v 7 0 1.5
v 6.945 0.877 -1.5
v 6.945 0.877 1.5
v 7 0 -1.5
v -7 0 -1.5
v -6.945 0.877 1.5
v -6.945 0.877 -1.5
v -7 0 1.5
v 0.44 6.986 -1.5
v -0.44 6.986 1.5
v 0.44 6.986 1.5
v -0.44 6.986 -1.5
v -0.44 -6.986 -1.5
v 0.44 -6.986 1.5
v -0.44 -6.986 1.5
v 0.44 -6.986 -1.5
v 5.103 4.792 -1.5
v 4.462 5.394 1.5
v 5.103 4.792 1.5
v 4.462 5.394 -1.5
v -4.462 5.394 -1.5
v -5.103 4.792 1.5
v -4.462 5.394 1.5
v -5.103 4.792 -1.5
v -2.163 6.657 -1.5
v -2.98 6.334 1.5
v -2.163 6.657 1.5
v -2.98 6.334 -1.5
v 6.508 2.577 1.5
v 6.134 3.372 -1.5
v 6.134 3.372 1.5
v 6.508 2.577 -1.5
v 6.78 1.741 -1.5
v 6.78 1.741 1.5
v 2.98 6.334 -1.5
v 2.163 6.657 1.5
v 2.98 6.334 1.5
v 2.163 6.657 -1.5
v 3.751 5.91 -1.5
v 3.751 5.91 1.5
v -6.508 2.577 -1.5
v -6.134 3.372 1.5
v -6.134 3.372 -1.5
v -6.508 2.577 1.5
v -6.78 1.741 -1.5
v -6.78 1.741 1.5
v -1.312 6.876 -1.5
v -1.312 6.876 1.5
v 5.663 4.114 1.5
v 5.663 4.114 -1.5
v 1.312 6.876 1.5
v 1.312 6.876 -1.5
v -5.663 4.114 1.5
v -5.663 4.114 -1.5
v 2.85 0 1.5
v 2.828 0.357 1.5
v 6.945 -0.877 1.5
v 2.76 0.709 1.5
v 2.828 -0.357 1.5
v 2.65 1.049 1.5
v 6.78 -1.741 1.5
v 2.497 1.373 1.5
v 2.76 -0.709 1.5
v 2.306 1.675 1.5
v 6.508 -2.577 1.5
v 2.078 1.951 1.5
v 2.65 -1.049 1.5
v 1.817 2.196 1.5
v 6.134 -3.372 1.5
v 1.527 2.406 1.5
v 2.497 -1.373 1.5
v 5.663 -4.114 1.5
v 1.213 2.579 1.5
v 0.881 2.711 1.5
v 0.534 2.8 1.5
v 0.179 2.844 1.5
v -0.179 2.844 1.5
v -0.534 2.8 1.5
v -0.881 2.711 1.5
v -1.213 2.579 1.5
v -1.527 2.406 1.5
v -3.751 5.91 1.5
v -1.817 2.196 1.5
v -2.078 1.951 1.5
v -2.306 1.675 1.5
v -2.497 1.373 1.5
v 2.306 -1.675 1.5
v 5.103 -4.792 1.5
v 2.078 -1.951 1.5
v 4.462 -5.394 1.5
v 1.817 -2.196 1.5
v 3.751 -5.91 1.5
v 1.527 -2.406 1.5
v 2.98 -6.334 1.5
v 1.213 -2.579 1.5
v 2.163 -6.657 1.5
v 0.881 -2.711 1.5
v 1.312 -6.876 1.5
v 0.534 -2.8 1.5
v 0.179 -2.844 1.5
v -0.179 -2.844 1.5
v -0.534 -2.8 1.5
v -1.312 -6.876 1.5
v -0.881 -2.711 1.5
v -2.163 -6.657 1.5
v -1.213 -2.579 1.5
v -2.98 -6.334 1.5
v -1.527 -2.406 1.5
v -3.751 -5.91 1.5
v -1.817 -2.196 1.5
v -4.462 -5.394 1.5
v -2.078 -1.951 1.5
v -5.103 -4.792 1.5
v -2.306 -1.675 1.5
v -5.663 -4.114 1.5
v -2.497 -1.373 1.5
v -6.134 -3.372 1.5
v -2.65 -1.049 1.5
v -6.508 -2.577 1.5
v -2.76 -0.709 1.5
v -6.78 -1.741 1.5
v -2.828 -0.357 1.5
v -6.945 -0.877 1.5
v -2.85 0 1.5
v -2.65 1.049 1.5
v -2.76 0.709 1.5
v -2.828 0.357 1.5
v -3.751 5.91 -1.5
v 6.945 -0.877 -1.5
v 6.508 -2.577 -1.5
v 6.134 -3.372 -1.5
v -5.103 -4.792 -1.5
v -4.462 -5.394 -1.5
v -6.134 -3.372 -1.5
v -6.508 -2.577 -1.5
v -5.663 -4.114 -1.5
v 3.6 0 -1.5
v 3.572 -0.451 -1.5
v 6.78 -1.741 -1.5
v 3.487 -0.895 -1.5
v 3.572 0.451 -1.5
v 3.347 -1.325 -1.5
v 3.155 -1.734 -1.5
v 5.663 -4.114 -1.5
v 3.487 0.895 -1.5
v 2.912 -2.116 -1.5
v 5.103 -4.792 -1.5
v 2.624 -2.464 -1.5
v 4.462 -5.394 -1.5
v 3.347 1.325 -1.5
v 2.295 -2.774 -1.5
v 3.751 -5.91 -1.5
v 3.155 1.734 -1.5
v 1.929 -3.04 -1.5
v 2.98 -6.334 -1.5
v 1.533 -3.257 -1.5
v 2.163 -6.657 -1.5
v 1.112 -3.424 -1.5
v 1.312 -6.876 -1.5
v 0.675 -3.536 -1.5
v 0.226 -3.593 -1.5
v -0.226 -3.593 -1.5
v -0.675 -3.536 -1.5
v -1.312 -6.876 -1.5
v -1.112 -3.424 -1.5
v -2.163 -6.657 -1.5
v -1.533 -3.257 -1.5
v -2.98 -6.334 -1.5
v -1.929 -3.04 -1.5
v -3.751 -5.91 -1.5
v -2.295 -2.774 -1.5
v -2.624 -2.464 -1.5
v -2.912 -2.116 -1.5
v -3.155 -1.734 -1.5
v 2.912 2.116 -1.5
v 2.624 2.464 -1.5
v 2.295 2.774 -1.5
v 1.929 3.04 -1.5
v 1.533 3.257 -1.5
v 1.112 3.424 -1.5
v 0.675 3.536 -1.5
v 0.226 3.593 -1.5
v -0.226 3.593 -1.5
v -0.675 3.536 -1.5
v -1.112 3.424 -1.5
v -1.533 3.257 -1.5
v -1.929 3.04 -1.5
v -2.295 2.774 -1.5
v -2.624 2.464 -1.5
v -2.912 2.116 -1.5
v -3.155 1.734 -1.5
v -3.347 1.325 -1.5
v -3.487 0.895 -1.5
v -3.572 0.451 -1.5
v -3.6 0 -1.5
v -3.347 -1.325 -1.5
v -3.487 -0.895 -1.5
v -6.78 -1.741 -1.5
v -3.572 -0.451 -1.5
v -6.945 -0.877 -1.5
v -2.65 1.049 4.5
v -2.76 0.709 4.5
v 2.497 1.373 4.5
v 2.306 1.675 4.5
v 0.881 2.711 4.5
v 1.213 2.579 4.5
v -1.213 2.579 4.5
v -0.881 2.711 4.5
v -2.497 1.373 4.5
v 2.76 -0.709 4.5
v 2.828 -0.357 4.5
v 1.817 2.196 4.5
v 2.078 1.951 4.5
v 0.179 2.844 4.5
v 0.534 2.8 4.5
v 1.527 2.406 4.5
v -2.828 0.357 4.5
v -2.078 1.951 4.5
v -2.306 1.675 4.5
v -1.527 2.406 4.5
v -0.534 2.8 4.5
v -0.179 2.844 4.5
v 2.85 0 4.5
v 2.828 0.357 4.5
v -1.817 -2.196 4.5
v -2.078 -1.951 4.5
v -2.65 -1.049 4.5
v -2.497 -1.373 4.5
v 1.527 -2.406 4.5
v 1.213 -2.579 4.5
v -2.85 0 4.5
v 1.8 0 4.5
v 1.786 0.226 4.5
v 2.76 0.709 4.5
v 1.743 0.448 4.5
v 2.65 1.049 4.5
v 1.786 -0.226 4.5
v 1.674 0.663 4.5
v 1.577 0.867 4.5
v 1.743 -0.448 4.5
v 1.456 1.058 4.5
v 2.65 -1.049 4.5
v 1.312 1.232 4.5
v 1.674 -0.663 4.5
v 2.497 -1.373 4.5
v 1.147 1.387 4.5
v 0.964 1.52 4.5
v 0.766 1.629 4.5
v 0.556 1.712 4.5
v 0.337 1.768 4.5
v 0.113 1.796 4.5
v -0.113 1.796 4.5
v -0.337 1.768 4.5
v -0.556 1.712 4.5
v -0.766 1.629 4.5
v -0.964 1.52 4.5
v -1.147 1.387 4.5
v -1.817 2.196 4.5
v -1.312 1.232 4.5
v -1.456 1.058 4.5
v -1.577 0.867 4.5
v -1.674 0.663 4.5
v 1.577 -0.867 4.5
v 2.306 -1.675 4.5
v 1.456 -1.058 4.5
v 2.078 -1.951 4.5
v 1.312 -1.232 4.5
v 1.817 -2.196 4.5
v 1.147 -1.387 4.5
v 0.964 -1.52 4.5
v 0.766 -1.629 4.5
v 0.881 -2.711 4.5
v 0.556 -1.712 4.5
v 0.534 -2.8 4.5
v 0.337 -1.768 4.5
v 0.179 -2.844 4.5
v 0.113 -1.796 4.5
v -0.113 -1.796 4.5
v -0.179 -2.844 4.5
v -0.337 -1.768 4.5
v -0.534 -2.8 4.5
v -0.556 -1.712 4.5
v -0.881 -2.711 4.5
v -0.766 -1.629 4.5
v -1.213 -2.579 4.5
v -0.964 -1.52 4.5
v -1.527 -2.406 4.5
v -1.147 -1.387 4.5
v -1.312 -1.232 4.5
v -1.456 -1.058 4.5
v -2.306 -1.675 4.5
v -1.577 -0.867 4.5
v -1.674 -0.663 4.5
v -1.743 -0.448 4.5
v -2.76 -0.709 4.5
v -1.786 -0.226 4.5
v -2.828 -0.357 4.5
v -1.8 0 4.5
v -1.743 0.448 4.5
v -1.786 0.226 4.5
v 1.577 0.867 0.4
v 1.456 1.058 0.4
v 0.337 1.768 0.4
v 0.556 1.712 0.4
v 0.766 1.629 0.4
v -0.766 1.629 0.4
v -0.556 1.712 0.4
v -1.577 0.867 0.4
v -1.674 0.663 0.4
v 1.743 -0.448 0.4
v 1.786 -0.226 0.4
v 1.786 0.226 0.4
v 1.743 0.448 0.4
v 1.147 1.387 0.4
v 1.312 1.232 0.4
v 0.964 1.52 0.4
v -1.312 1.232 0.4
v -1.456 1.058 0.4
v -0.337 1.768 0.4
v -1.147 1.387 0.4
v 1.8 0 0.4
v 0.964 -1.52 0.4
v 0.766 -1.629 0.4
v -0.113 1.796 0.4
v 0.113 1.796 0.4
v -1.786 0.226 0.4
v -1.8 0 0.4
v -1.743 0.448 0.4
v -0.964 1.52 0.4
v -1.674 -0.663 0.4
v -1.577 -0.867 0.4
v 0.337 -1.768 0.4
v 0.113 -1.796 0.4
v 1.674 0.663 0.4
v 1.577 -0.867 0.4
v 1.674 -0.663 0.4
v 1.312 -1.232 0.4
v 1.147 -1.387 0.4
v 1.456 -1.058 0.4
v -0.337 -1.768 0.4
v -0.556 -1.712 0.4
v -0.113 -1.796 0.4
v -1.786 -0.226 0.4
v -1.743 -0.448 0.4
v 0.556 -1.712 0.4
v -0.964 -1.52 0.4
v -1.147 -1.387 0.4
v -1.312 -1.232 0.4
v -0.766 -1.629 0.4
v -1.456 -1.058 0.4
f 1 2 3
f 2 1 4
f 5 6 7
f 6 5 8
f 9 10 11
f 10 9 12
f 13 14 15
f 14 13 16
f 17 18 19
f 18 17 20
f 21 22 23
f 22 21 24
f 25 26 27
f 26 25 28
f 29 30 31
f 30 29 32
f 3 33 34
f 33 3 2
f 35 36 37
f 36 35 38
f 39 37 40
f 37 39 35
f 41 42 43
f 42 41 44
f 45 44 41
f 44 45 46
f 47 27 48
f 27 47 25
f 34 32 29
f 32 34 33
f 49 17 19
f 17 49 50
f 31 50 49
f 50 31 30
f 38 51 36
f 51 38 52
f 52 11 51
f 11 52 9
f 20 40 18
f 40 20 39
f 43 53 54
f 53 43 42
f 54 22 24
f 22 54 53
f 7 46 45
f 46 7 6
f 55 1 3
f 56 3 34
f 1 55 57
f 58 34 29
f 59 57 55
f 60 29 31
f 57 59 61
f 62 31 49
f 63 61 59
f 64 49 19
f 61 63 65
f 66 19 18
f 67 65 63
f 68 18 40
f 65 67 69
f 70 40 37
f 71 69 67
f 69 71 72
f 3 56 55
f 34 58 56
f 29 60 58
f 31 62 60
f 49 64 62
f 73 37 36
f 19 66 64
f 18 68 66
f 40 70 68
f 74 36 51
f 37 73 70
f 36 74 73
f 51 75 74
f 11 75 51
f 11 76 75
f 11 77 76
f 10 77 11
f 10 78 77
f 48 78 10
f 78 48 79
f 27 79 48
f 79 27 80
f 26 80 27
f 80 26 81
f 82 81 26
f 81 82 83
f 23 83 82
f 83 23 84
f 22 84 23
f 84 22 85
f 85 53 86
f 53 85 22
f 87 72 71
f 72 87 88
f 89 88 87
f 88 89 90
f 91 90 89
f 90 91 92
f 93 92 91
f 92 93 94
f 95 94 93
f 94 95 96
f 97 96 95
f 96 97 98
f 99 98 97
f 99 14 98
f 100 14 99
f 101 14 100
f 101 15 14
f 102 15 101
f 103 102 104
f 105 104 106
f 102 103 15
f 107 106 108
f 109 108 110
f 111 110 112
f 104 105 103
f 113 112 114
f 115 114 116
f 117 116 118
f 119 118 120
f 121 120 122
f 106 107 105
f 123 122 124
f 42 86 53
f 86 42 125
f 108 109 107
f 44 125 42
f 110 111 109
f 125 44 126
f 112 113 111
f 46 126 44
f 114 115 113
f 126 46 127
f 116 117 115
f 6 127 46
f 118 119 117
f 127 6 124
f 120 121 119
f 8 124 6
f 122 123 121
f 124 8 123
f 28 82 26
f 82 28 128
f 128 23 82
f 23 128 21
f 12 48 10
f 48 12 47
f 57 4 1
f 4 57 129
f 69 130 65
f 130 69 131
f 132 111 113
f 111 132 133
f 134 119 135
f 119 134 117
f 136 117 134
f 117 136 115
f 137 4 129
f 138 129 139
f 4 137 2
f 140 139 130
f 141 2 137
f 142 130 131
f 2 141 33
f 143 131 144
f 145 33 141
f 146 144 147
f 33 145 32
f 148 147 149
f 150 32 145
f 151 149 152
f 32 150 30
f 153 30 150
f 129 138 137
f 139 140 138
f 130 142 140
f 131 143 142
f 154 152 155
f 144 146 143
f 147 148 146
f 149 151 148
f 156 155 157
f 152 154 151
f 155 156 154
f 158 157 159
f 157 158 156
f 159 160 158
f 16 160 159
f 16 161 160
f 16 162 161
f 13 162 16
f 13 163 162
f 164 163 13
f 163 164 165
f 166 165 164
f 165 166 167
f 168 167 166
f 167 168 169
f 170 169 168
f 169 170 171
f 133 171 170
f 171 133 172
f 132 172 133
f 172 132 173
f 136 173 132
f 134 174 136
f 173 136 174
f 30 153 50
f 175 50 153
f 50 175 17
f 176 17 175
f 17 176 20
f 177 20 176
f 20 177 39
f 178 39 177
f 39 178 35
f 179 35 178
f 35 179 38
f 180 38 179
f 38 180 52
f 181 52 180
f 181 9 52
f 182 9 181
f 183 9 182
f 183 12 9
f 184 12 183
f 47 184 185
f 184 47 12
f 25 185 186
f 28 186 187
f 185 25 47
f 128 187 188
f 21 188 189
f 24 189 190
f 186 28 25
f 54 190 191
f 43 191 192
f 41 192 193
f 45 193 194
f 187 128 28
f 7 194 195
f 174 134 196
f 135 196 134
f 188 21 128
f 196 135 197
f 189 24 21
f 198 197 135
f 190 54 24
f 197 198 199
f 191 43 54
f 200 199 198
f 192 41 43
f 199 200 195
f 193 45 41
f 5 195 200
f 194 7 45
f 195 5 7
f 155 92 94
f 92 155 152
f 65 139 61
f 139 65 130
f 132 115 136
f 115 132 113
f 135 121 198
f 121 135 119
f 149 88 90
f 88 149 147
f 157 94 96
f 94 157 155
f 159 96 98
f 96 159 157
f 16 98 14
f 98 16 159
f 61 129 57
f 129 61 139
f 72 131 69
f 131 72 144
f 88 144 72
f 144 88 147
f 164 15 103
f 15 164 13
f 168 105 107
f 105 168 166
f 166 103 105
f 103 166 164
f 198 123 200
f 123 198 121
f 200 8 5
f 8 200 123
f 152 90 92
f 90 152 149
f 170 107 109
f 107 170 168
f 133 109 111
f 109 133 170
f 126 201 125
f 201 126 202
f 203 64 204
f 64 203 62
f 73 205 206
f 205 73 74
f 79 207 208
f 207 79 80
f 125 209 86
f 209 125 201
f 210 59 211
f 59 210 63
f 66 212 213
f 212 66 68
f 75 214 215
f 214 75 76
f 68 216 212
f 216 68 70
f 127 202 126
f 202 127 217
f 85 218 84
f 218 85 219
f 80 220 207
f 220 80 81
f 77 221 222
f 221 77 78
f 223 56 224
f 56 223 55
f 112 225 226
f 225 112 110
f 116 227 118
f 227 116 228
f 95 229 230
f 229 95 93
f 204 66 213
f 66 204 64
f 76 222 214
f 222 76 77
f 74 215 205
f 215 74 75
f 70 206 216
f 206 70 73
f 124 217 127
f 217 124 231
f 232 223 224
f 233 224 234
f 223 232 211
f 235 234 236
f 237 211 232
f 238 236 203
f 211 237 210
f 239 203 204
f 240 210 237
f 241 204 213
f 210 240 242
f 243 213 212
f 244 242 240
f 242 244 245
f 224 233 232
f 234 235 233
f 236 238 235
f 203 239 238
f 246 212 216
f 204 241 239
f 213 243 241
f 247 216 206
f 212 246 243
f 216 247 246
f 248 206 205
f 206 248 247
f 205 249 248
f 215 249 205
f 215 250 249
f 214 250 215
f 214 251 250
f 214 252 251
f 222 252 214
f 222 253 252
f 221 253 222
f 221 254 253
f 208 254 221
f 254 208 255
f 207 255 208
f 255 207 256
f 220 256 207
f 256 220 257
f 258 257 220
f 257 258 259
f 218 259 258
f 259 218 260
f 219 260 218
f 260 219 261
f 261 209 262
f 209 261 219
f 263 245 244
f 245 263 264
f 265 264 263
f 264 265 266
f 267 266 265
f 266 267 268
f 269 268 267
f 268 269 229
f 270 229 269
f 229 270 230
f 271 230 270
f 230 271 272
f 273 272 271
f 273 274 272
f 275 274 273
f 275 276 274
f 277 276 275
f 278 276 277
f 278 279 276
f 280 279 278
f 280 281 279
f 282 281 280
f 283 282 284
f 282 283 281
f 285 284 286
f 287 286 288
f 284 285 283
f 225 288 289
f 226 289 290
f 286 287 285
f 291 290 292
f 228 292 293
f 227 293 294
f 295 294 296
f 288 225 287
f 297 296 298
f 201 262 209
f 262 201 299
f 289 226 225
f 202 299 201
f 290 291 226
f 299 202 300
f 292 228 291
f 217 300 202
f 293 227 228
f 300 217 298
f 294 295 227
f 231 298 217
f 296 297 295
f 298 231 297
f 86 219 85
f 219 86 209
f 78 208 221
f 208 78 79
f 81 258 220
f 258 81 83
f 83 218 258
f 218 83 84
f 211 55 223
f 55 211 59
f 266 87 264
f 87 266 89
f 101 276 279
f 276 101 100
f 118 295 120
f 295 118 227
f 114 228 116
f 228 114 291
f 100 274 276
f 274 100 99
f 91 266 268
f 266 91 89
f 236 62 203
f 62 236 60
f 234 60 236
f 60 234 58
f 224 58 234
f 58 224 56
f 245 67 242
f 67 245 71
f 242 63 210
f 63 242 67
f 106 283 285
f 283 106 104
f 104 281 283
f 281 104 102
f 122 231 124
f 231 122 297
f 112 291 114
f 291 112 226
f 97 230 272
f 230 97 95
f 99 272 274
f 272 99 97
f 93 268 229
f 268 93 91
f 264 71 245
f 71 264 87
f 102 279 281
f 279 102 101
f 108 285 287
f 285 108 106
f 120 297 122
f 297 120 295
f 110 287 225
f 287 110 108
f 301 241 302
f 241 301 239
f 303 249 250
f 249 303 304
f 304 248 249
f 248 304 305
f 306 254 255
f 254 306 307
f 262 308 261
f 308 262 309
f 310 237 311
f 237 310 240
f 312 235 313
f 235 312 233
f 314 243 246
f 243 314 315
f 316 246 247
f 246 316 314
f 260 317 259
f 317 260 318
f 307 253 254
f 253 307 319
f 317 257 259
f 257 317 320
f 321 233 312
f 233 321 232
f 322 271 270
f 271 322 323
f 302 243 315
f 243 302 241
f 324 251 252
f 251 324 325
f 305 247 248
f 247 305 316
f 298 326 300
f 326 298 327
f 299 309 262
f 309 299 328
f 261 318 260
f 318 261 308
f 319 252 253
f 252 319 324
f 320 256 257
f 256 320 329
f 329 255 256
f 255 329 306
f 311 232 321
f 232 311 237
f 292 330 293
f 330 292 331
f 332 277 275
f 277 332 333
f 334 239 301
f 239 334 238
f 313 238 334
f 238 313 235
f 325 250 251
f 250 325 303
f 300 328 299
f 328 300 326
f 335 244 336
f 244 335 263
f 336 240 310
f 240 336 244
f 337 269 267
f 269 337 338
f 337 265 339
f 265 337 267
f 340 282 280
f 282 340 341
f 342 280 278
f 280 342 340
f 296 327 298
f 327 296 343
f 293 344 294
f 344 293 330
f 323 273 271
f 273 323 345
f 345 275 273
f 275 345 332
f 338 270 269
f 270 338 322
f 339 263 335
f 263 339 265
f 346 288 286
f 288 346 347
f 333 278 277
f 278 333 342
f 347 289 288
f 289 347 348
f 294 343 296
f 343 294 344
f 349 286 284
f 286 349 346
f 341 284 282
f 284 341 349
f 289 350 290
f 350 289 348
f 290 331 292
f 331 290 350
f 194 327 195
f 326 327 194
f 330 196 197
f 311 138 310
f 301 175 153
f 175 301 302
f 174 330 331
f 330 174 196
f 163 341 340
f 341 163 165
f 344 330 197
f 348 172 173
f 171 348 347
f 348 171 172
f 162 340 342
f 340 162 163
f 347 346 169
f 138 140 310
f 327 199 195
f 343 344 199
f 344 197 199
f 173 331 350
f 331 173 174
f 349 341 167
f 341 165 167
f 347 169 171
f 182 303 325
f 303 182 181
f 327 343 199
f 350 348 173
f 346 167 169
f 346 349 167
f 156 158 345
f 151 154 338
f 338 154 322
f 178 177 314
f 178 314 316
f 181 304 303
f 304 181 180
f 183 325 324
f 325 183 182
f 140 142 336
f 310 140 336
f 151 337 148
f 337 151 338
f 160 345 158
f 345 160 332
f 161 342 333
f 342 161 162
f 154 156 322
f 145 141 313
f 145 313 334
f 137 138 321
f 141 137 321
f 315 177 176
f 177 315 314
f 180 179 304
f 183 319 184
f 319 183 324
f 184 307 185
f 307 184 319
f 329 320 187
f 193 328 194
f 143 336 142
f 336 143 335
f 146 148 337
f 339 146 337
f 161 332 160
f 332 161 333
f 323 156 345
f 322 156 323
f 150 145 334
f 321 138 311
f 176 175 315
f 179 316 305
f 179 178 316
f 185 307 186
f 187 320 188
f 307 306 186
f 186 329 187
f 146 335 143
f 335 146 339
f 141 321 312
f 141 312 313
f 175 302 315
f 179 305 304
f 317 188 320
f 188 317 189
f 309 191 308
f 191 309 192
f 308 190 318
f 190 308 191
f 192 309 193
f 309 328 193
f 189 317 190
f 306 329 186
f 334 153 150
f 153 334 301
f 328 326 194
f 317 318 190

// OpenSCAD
$fn = 50;


difference() {
	union() {
		translate(v = [0, 0, -1.5000000000]) {
			rotate(a = [0, 0, 0]) {
				cylinder(h = 3, r = 7.0000000000);
			}
		}
		translate(v = [0, 0, -1.5000000000]) {
			rotate(a = [0, 0, 0]) {
				cylinder(h = 6, r = 2.8500000000);
			}
		}
	}
	union() {
		translate(v = [0, 0, -125.0000000000]) {
			rotate(a = [0, 0, 0]) {
				cylinder(h = 250, r = 1.8000000000);
			}
		}
		#translate(v = [0, 0, 0.4000000000]) {
			rotate(a = [0, 180, 0]) {
				cylinder(h = 1.9000000000, r1 = 1.8000000000, r2 = 3.6000000000);
			}
		}
		#translate(v = [0, 0, 4.5000000000]) {
			rotate(a = [0, 180, 0]) {
				cylinder(h = 6, r = 1.8000000000);
			}
		}
	}
}
